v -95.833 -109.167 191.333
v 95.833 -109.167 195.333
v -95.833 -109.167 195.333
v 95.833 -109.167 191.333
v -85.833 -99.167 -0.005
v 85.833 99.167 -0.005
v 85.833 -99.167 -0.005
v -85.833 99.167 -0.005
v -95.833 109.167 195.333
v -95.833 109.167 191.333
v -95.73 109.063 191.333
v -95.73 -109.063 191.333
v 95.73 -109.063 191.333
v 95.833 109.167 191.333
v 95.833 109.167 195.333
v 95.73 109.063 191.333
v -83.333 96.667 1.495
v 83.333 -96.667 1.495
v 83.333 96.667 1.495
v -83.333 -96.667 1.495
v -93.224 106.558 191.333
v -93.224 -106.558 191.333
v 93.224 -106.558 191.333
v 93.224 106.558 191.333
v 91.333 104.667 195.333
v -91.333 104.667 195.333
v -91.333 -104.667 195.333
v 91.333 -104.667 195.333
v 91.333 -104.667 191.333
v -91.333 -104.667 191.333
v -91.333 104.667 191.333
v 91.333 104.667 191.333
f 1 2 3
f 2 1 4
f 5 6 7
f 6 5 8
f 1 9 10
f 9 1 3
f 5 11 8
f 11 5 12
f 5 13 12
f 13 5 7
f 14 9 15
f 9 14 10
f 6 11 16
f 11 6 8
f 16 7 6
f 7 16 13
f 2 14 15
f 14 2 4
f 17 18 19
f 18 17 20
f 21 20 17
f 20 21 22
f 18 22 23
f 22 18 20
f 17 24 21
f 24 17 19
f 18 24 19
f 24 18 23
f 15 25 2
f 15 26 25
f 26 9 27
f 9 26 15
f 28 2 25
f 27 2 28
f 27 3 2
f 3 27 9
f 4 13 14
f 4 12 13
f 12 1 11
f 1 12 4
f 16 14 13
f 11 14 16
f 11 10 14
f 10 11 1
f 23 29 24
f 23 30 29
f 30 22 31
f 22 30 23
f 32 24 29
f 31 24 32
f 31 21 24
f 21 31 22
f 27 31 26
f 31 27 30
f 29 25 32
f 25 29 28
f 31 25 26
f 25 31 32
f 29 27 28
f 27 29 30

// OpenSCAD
// ══════════════════════════════════════════════════════════════
// The Good Sort — 1:3 Scale Bin Shell (NO insert)
// ══════════════════════════════════════════════════════════════
// Print this once. Then print different inserts to drop in.
// Snapmaker U1: 270×270×270mm bed. This is 192×218×198mm.

scale = 1/3;

// SULO 240L real dimensions
real_w = 560;  real_d = 640;  real_h = 580;  real_taper = 30;

w  = real_w * scale;     // 187
d  = real_d * scale;     // 213
h  = real_h * scale;     // 193
tp = real_taper * scale; // 10

wall = 2.5;  // bin wall thickness
base = 1.5;  // thin base so you can test tipping

// ── Lip / rim at top (helps inserts sit flush) ──
rim_h = 4;
rim_inset = 2;  // small ledge inserts can rest on

module bin_shell() {
    // Main tapered body
    difference() {
        hull() {
            translate([0, 0, h]) cube([w + wall*2, d + wall*2, 0.01], center=true);
            cube([w + wall*2 - tp*2, d + wall*2 - tp*2, 0.01], center=true);
        }
        hull() {
            translate([0, 0, h + 0.1]) cube([w, d, 0.01], center=true);
            translate([0, 0, base]) cube([w - tp*2, d - tp*2, 0.01], center=true);
        }
    }

    // Rim / ledge at top — inserts rest on this
    difference() {
        translate([0, 0, h])
            cube([w + wall*2, d + wall*2, rim_h], center=true);
        translate([0, 0, h])
            cube([w - rim_inset*2, d - rim_inset*2, rim_h + 0.1], center=true);
    }
}

bin_shell();
